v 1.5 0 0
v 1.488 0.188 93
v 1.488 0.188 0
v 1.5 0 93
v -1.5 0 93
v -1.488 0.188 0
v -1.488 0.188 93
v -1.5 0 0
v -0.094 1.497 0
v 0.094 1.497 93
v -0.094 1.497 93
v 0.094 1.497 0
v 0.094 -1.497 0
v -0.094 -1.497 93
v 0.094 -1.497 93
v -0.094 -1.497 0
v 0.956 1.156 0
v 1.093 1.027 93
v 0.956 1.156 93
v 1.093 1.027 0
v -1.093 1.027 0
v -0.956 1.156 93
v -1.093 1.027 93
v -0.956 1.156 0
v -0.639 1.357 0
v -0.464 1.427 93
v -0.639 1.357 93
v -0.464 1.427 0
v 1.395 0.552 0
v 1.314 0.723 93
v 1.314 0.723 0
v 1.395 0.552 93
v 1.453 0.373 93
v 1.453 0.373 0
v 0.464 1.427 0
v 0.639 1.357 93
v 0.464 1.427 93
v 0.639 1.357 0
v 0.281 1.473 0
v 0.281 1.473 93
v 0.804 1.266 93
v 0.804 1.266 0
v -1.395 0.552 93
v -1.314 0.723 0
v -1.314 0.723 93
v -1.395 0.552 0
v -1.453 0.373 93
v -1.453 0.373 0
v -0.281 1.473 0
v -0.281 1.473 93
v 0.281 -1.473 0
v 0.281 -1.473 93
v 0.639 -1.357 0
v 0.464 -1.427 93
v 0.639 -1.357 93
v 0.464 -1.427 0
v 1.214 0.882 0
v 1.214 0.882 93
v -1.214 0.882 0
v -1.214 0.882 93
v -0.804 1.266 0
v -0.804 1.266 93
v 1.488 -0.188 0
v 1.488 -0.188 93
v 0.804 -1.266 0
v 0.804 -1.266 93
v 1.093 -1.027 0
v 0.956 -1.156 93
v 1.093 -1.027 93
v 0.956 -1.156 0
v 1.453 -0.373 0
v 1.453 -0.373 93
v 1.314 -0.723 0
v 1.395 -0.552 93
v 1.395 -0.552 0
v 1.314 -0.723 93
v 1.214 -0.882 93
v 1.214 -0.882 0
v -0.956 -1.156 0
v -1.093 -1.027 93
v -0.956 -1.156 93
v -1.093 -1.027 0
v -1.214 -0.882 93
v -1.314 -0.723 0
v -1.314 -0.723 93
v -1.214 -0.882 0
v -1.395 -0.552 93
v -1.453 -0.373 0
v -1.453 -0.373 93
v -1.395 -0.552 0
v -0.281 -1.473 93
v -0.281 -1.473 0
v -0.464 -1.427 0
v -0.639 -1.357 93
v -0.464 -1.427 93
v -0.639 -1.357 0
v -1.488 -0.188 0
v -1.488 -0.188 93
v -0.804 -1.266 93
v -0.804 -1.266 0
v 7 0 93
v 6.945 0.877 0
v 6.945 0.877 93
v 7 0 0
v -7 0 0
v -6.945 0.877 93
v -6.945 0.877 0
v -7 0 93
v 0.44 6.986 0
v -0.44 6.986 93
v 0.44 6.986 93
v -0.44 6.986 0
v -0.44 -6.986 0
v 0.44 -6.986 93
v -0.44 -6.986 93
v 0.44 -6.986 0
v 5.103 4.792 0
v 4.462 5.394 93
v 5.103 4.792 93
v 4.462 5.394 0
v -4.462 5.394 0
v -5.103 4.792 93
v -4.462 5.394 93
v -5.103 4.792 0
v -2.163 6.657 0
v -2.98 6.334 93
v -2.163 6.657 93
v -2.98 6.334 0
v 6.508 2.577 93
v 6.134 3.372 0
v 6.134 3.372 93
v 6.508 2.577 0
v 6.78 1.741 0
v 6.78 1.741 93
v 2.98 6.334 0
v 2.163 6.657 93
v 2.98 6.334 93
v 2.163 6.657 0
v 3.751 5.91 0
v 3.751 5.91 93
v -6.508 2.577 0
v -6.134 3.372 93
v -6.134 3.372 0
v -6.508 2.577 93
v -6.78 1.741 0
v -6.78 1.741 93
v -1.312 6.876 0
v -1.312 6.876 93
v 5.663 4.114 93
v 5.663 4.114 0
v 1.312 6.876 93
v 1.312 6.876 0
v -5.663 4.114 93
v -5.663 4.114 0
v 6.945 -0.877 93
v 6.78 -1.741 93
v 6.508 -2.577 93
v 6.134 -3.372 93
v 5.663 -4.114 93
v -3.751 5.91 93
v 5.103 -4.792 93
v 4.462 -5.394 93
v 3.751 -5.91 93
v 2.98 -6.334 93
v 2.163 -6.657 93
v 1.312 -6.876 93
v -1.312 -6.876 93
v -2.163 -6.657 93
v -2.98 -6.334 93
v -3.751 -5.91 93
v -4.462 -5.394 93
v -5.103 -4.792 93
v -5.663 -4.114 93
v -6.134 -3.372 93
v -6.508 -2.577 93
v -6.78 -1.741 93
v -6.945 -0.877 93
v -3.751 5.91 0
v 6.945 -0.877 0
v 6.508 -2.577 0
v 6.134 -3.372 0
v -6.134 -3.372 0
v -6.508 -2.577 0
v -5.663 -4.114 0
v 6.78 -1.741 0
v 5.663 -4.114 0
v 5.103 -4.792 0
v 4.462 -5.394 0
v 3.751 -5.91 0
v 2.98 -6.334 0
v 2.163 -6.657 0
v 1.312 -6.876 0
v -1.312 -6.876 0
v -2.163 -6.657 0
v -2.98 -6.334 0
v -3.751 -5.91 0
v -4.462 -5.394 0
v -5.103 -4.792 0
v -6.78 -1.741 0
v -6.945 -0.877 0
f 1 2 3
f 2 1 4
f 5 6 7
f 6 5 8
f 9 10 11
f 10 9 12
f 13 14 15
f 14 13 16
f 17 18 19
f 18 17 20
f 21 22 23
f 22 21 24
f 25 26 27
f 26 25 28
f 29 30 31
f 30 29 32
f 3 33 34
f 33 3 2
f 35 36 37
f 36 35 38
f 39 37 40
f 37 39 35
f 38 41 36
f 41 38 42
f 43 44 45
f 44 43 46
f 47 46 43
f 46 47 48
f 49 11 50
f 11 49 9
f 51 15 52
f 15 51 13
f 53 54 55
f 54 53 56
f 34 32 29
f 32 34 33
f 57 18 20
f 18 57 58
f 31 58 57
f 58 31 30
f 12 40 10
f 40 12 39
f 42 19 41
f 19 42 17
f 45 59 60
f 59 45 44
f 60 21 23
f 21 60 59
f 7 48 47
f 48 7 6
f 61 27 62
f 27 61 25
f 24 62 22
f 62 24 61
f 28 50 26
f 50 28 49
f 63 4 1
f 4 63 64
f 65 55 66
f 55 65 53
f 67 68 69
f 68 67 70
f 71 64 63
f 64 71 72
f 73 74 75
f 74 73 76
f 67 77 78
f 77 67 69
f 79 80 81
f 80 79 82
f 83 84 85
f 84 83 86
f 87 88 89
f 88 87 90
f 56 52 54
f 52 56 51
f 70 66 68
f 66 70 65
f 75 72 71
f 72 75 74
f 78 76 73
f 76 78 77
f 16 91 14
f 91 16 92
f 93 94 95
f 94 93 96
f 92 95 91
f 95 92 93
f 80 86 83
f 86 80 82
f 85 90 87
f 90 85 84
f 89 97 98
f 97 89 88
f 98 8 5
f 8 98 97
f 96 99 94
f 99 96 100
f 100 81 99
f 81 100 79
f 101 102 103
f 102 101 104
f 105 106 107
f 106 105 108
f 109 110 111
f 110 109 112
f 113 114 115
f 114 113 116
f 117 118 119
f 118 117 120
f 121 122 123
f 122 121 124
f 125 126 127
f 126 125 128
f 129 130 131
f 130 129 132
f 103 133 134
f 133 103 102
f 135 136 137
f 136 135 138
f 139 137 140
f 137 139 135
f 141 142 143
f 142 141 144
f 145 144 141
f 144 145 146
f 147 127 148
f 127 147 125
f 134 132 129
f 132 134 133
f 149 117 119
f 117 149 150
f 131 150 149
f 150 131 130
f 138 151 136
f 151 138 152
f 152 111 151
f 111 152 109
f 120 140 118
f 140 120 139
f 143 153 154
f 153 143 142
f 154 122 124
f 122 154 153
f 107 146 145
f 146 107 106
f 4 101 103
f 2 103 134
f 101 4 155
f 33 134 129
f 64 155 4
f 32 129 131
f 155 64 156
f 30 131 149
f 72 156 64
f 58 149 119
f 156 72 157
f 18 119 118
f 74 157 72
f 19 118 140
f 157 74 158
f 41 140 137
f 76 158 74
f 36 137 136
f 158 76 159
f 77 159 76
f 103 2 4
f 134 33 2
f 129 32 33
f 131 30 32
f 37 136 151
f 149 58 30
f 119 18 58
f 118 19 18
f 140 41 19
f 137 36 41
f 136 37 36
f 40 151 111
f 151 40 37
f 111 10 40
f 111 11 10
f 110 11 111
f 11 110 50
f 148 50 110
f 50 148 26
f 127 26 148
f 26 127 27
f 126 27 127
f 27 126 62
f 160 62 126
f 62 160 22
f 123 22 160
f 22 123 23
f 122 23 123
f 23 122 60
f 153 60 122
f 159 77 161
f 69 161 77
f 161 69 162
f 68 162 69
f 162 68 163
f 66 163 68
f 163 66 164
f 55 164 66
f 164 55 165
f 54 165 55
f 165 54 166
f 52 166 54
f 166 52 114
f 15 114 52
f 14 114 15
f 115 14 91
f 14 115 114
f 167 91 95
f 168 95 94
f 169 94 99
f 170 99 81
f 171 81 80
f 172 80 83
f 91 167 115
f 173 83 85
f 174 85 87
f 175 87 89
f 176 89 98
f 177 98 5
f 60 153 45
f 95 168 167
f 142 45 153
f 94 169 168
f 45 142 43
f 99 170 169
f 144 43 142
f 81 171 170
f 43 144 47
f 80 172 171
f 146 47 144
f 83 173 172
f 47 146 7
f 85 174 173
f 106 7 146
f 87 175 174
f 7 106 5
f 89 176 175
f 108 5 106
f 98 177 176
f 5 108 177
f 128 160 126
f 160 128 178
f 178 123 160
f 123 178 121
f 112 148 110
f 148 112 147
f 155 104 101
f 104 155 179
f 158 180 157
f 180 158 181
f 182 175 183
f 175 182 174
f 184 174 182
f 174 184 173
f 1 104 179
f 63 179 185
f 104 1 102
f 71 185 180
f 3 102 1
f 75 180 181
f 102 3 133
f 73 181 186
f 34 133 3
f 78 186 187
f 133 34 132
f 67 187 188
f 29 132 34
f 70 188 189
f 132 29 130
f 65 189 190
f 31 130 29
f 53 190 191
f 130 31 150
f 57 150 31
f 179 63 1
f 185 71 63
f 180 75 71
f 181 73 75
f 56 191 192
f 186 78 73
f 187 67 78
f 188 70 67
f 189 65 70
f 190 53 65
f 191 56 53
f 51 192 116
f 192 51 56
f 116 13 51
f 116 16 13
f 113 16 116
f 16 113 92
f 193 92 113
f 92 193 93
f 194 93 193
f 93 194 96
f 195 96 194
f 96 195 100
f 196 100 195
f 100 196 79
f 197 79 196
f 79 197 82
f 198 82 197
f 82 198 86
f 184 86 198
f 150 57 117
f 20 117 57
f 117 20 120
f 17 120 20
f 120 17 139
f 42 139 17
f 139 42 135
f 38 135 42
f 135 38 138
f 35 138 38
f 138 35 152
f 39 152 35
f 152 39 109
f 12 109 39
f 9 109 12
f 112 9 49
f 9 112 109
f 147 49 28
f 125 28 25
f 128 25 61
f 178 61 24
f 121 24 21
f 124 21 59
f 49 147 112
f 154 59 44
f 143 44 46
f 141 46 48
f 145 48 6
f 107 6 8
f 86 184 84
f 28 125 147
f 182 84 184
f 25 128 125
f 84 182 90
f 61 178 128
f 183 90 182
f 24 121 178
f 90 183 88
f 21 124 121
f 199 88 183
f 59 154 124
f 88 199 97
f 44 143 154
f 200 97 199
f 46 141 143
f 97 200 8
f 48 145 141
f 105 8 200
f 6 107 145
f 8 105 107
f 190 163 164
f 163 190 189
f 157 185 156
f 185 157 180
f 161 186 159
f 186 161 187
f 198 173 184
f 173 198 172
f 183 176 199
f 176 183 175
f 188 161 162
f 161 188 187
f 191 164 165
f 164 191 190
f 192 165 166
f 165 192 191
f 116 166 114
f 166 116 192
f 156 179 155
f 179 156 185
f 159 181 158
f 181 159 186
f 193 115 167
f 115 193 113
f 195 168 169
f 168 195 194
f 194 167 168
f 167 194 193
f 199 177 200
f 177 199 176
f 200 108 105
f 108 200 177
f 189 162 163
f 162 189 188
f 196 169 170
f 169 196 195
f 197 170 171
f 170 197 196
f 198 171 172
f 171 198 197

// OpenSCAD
$fn = 50;


difference() {
	union() {
		cylinder(h = 93, r = 7.0000000000);
	}
	union() {
		translate(v = [0, 0, -100]) {
			cylinder(h = 200, r = 1.5000000000);
		}
		translate(v = [0, 0, -100]) {
			cylinder(h = 200, r = 1.5000000000);
		}
	}
}
